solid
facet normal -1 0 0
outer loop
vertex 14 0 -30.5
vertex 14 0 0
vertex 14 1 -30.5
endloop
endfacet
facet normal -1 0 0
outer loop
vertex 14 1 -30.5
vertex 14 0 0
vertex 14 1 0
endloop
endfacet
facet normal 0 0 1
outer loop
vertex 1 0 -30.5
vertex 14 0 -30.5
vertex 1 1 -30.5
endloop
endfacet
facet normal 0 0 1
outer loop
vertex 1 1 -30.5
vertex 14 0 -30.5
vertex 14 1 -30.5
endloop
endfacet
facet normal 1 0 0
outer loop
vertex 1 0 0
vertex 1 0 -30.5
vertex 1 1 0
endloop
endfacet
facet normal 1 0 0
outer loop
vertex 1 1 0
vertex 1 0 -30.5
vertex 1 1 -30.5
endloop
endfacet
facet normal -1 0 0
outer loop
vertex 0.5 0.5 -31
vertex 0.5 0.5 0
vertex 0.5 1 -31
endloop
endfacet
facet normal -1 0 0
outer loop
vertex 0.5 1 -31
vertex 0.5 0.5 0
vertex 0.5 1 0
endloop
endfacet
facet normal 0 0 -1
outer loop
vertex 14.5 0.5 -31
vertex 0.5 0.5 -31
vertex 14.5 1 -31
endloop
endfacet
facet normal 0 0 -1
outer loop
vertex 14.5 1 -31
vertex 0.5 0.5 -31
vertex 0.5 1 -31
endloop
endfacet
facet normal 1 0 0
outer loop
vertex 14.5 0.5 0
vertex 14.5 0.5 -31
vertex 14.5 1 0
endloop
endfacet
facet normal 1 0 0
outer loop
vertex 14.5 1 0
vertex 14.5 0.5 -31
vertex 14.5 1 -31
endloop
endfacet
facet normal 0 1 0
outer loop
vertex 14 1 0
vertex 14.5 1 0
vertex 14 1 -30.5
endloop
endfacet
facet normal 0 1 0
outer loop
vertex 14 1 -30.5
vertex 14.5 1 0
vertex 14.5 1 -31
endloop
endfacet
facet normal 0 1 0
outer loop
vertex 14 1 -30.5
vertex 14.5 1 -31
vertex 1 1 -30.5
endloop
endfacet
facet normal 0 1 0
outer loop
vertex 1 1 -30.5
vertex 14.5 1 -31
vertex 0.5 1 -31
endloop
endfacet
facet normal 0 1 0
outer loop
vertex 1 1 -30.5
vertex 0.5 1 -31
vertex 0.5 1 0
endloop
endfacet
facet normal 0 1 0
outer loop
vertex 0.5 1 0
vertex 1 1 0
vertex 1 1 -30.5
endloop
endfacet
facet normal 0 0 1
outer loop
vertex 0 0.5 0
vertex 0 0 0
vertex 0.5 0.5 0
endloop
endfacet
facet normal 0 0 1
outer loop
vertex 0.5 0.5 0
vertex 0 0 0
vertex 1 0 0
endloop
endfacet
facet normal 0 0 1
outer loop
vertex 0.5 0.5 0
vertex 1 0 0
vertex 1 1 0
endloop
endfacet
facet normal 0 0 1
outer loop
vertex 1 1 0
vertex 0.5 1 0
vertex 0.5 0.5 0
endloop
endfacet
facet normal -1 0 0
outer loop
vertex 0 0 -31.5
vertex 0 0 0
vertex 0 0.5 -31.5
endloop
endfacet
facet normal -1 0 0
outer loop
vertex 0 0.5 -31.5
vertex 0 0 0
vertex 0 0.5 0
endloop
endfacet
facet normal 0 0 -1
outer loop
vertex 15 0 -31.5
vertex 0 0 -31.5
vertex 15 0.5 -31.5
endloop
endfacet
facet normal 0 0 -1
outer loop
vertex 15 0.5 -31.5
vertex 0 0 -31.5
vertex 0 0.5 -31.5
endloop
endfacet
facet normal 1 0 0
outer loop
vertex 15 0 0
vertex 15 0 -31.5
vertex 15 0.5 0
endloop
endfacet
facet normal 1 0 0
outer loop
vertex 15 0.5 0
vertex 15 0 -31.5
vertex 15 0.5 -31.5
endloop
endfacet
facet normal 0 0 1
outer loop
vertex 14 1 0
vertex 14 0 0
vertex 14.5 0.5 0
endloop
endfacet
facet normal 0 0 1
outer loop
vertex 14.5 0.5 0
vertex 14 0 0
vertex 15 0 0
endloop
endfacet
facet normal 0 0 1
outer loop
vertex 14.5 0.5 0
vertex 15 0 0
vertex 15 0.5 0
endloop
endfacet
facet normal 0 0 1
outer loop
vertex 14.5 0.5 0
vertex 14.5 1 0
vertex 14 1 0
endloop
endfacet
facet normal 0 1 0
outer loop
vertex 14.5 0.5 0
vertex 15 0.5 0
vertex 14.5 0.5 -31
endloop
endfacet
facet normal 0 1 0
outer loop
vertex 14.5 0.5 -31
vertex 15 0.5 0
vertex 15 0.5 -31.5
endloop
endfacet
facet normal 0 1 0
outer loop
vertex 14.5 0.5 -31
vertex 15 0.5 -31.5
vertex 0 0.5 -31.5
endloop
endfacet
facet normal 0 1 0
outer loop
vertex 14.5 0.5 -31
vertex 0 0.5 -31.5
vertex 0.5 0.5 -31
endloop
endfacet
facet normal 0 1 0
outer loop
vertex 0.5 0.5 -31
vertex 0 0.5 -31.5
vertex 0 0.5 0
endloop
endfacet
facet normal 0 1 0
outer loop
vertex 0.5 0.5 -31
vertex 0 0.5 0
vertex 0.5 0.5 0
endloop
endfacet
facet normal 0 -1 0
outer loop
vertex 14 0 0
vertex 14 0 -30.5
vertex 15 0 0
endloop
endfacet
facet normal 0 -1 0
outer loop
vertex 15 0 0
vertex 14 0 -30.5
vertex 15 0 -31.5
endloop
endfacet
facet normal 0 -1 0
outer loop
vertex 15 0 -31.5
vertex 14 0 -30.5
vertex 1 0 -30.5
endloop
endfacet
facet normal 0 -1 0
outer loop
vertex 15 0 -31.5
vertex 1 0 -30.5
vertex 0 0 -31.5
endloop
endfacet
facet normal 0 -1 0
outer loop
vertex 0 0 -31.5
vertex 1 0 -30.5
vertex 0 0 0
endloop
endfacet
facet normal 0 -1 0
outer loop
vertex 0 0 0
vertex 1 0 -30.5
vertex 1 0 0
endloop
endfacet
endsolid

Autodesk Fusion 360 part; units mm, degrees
sketch "Sketch1" plane through (0, 0, 0) normal (0, 1, 0) x (1, 0, 0)
  line L0 (0, 0) -> (15, 0)
  line L1 (15, 0) -> (15, 31.5)
  line L2 (15, 31.5) -> (0, 31.5)
  line L3 (0, 31.5) -> (0, 0)
  line L4 (1, 0) -> (14, 0)
  line L5 (14, 0) -> (14, 30.5)
  line L6 (14, 30.5) -> (1, 30.5)
  line L7 (1, 30.5) -> (1, 0)
  line L8 (0.5, 0) -> (14.5, 0)
  line L9 (14.5, 0) -> (14.5, 31)
  line L10 (14.5, 31) -> (0.5, 31)
  line L11 (0.5, 31) -> (0.5, 0)
  dimension "d1" = 15
  dimension "d2" = 31.5
  dimension "d3" = 13
  dimension "d4" = 30.5
  dimension "d5" = 1
  dimension "d6" = 14
  dimension "d7" = 31
  dimension "d8" = 0.5
extrude "Extrude1" add sketch "Sketch1" along normal blind 0.5 contours L0 L1 L2 L3 L9 L10 L11
extrude "Extrude2" add sketch "Sketch1" along normal blind 1 contours L0 L5 L6 L7 L8 L9 L10 L11
